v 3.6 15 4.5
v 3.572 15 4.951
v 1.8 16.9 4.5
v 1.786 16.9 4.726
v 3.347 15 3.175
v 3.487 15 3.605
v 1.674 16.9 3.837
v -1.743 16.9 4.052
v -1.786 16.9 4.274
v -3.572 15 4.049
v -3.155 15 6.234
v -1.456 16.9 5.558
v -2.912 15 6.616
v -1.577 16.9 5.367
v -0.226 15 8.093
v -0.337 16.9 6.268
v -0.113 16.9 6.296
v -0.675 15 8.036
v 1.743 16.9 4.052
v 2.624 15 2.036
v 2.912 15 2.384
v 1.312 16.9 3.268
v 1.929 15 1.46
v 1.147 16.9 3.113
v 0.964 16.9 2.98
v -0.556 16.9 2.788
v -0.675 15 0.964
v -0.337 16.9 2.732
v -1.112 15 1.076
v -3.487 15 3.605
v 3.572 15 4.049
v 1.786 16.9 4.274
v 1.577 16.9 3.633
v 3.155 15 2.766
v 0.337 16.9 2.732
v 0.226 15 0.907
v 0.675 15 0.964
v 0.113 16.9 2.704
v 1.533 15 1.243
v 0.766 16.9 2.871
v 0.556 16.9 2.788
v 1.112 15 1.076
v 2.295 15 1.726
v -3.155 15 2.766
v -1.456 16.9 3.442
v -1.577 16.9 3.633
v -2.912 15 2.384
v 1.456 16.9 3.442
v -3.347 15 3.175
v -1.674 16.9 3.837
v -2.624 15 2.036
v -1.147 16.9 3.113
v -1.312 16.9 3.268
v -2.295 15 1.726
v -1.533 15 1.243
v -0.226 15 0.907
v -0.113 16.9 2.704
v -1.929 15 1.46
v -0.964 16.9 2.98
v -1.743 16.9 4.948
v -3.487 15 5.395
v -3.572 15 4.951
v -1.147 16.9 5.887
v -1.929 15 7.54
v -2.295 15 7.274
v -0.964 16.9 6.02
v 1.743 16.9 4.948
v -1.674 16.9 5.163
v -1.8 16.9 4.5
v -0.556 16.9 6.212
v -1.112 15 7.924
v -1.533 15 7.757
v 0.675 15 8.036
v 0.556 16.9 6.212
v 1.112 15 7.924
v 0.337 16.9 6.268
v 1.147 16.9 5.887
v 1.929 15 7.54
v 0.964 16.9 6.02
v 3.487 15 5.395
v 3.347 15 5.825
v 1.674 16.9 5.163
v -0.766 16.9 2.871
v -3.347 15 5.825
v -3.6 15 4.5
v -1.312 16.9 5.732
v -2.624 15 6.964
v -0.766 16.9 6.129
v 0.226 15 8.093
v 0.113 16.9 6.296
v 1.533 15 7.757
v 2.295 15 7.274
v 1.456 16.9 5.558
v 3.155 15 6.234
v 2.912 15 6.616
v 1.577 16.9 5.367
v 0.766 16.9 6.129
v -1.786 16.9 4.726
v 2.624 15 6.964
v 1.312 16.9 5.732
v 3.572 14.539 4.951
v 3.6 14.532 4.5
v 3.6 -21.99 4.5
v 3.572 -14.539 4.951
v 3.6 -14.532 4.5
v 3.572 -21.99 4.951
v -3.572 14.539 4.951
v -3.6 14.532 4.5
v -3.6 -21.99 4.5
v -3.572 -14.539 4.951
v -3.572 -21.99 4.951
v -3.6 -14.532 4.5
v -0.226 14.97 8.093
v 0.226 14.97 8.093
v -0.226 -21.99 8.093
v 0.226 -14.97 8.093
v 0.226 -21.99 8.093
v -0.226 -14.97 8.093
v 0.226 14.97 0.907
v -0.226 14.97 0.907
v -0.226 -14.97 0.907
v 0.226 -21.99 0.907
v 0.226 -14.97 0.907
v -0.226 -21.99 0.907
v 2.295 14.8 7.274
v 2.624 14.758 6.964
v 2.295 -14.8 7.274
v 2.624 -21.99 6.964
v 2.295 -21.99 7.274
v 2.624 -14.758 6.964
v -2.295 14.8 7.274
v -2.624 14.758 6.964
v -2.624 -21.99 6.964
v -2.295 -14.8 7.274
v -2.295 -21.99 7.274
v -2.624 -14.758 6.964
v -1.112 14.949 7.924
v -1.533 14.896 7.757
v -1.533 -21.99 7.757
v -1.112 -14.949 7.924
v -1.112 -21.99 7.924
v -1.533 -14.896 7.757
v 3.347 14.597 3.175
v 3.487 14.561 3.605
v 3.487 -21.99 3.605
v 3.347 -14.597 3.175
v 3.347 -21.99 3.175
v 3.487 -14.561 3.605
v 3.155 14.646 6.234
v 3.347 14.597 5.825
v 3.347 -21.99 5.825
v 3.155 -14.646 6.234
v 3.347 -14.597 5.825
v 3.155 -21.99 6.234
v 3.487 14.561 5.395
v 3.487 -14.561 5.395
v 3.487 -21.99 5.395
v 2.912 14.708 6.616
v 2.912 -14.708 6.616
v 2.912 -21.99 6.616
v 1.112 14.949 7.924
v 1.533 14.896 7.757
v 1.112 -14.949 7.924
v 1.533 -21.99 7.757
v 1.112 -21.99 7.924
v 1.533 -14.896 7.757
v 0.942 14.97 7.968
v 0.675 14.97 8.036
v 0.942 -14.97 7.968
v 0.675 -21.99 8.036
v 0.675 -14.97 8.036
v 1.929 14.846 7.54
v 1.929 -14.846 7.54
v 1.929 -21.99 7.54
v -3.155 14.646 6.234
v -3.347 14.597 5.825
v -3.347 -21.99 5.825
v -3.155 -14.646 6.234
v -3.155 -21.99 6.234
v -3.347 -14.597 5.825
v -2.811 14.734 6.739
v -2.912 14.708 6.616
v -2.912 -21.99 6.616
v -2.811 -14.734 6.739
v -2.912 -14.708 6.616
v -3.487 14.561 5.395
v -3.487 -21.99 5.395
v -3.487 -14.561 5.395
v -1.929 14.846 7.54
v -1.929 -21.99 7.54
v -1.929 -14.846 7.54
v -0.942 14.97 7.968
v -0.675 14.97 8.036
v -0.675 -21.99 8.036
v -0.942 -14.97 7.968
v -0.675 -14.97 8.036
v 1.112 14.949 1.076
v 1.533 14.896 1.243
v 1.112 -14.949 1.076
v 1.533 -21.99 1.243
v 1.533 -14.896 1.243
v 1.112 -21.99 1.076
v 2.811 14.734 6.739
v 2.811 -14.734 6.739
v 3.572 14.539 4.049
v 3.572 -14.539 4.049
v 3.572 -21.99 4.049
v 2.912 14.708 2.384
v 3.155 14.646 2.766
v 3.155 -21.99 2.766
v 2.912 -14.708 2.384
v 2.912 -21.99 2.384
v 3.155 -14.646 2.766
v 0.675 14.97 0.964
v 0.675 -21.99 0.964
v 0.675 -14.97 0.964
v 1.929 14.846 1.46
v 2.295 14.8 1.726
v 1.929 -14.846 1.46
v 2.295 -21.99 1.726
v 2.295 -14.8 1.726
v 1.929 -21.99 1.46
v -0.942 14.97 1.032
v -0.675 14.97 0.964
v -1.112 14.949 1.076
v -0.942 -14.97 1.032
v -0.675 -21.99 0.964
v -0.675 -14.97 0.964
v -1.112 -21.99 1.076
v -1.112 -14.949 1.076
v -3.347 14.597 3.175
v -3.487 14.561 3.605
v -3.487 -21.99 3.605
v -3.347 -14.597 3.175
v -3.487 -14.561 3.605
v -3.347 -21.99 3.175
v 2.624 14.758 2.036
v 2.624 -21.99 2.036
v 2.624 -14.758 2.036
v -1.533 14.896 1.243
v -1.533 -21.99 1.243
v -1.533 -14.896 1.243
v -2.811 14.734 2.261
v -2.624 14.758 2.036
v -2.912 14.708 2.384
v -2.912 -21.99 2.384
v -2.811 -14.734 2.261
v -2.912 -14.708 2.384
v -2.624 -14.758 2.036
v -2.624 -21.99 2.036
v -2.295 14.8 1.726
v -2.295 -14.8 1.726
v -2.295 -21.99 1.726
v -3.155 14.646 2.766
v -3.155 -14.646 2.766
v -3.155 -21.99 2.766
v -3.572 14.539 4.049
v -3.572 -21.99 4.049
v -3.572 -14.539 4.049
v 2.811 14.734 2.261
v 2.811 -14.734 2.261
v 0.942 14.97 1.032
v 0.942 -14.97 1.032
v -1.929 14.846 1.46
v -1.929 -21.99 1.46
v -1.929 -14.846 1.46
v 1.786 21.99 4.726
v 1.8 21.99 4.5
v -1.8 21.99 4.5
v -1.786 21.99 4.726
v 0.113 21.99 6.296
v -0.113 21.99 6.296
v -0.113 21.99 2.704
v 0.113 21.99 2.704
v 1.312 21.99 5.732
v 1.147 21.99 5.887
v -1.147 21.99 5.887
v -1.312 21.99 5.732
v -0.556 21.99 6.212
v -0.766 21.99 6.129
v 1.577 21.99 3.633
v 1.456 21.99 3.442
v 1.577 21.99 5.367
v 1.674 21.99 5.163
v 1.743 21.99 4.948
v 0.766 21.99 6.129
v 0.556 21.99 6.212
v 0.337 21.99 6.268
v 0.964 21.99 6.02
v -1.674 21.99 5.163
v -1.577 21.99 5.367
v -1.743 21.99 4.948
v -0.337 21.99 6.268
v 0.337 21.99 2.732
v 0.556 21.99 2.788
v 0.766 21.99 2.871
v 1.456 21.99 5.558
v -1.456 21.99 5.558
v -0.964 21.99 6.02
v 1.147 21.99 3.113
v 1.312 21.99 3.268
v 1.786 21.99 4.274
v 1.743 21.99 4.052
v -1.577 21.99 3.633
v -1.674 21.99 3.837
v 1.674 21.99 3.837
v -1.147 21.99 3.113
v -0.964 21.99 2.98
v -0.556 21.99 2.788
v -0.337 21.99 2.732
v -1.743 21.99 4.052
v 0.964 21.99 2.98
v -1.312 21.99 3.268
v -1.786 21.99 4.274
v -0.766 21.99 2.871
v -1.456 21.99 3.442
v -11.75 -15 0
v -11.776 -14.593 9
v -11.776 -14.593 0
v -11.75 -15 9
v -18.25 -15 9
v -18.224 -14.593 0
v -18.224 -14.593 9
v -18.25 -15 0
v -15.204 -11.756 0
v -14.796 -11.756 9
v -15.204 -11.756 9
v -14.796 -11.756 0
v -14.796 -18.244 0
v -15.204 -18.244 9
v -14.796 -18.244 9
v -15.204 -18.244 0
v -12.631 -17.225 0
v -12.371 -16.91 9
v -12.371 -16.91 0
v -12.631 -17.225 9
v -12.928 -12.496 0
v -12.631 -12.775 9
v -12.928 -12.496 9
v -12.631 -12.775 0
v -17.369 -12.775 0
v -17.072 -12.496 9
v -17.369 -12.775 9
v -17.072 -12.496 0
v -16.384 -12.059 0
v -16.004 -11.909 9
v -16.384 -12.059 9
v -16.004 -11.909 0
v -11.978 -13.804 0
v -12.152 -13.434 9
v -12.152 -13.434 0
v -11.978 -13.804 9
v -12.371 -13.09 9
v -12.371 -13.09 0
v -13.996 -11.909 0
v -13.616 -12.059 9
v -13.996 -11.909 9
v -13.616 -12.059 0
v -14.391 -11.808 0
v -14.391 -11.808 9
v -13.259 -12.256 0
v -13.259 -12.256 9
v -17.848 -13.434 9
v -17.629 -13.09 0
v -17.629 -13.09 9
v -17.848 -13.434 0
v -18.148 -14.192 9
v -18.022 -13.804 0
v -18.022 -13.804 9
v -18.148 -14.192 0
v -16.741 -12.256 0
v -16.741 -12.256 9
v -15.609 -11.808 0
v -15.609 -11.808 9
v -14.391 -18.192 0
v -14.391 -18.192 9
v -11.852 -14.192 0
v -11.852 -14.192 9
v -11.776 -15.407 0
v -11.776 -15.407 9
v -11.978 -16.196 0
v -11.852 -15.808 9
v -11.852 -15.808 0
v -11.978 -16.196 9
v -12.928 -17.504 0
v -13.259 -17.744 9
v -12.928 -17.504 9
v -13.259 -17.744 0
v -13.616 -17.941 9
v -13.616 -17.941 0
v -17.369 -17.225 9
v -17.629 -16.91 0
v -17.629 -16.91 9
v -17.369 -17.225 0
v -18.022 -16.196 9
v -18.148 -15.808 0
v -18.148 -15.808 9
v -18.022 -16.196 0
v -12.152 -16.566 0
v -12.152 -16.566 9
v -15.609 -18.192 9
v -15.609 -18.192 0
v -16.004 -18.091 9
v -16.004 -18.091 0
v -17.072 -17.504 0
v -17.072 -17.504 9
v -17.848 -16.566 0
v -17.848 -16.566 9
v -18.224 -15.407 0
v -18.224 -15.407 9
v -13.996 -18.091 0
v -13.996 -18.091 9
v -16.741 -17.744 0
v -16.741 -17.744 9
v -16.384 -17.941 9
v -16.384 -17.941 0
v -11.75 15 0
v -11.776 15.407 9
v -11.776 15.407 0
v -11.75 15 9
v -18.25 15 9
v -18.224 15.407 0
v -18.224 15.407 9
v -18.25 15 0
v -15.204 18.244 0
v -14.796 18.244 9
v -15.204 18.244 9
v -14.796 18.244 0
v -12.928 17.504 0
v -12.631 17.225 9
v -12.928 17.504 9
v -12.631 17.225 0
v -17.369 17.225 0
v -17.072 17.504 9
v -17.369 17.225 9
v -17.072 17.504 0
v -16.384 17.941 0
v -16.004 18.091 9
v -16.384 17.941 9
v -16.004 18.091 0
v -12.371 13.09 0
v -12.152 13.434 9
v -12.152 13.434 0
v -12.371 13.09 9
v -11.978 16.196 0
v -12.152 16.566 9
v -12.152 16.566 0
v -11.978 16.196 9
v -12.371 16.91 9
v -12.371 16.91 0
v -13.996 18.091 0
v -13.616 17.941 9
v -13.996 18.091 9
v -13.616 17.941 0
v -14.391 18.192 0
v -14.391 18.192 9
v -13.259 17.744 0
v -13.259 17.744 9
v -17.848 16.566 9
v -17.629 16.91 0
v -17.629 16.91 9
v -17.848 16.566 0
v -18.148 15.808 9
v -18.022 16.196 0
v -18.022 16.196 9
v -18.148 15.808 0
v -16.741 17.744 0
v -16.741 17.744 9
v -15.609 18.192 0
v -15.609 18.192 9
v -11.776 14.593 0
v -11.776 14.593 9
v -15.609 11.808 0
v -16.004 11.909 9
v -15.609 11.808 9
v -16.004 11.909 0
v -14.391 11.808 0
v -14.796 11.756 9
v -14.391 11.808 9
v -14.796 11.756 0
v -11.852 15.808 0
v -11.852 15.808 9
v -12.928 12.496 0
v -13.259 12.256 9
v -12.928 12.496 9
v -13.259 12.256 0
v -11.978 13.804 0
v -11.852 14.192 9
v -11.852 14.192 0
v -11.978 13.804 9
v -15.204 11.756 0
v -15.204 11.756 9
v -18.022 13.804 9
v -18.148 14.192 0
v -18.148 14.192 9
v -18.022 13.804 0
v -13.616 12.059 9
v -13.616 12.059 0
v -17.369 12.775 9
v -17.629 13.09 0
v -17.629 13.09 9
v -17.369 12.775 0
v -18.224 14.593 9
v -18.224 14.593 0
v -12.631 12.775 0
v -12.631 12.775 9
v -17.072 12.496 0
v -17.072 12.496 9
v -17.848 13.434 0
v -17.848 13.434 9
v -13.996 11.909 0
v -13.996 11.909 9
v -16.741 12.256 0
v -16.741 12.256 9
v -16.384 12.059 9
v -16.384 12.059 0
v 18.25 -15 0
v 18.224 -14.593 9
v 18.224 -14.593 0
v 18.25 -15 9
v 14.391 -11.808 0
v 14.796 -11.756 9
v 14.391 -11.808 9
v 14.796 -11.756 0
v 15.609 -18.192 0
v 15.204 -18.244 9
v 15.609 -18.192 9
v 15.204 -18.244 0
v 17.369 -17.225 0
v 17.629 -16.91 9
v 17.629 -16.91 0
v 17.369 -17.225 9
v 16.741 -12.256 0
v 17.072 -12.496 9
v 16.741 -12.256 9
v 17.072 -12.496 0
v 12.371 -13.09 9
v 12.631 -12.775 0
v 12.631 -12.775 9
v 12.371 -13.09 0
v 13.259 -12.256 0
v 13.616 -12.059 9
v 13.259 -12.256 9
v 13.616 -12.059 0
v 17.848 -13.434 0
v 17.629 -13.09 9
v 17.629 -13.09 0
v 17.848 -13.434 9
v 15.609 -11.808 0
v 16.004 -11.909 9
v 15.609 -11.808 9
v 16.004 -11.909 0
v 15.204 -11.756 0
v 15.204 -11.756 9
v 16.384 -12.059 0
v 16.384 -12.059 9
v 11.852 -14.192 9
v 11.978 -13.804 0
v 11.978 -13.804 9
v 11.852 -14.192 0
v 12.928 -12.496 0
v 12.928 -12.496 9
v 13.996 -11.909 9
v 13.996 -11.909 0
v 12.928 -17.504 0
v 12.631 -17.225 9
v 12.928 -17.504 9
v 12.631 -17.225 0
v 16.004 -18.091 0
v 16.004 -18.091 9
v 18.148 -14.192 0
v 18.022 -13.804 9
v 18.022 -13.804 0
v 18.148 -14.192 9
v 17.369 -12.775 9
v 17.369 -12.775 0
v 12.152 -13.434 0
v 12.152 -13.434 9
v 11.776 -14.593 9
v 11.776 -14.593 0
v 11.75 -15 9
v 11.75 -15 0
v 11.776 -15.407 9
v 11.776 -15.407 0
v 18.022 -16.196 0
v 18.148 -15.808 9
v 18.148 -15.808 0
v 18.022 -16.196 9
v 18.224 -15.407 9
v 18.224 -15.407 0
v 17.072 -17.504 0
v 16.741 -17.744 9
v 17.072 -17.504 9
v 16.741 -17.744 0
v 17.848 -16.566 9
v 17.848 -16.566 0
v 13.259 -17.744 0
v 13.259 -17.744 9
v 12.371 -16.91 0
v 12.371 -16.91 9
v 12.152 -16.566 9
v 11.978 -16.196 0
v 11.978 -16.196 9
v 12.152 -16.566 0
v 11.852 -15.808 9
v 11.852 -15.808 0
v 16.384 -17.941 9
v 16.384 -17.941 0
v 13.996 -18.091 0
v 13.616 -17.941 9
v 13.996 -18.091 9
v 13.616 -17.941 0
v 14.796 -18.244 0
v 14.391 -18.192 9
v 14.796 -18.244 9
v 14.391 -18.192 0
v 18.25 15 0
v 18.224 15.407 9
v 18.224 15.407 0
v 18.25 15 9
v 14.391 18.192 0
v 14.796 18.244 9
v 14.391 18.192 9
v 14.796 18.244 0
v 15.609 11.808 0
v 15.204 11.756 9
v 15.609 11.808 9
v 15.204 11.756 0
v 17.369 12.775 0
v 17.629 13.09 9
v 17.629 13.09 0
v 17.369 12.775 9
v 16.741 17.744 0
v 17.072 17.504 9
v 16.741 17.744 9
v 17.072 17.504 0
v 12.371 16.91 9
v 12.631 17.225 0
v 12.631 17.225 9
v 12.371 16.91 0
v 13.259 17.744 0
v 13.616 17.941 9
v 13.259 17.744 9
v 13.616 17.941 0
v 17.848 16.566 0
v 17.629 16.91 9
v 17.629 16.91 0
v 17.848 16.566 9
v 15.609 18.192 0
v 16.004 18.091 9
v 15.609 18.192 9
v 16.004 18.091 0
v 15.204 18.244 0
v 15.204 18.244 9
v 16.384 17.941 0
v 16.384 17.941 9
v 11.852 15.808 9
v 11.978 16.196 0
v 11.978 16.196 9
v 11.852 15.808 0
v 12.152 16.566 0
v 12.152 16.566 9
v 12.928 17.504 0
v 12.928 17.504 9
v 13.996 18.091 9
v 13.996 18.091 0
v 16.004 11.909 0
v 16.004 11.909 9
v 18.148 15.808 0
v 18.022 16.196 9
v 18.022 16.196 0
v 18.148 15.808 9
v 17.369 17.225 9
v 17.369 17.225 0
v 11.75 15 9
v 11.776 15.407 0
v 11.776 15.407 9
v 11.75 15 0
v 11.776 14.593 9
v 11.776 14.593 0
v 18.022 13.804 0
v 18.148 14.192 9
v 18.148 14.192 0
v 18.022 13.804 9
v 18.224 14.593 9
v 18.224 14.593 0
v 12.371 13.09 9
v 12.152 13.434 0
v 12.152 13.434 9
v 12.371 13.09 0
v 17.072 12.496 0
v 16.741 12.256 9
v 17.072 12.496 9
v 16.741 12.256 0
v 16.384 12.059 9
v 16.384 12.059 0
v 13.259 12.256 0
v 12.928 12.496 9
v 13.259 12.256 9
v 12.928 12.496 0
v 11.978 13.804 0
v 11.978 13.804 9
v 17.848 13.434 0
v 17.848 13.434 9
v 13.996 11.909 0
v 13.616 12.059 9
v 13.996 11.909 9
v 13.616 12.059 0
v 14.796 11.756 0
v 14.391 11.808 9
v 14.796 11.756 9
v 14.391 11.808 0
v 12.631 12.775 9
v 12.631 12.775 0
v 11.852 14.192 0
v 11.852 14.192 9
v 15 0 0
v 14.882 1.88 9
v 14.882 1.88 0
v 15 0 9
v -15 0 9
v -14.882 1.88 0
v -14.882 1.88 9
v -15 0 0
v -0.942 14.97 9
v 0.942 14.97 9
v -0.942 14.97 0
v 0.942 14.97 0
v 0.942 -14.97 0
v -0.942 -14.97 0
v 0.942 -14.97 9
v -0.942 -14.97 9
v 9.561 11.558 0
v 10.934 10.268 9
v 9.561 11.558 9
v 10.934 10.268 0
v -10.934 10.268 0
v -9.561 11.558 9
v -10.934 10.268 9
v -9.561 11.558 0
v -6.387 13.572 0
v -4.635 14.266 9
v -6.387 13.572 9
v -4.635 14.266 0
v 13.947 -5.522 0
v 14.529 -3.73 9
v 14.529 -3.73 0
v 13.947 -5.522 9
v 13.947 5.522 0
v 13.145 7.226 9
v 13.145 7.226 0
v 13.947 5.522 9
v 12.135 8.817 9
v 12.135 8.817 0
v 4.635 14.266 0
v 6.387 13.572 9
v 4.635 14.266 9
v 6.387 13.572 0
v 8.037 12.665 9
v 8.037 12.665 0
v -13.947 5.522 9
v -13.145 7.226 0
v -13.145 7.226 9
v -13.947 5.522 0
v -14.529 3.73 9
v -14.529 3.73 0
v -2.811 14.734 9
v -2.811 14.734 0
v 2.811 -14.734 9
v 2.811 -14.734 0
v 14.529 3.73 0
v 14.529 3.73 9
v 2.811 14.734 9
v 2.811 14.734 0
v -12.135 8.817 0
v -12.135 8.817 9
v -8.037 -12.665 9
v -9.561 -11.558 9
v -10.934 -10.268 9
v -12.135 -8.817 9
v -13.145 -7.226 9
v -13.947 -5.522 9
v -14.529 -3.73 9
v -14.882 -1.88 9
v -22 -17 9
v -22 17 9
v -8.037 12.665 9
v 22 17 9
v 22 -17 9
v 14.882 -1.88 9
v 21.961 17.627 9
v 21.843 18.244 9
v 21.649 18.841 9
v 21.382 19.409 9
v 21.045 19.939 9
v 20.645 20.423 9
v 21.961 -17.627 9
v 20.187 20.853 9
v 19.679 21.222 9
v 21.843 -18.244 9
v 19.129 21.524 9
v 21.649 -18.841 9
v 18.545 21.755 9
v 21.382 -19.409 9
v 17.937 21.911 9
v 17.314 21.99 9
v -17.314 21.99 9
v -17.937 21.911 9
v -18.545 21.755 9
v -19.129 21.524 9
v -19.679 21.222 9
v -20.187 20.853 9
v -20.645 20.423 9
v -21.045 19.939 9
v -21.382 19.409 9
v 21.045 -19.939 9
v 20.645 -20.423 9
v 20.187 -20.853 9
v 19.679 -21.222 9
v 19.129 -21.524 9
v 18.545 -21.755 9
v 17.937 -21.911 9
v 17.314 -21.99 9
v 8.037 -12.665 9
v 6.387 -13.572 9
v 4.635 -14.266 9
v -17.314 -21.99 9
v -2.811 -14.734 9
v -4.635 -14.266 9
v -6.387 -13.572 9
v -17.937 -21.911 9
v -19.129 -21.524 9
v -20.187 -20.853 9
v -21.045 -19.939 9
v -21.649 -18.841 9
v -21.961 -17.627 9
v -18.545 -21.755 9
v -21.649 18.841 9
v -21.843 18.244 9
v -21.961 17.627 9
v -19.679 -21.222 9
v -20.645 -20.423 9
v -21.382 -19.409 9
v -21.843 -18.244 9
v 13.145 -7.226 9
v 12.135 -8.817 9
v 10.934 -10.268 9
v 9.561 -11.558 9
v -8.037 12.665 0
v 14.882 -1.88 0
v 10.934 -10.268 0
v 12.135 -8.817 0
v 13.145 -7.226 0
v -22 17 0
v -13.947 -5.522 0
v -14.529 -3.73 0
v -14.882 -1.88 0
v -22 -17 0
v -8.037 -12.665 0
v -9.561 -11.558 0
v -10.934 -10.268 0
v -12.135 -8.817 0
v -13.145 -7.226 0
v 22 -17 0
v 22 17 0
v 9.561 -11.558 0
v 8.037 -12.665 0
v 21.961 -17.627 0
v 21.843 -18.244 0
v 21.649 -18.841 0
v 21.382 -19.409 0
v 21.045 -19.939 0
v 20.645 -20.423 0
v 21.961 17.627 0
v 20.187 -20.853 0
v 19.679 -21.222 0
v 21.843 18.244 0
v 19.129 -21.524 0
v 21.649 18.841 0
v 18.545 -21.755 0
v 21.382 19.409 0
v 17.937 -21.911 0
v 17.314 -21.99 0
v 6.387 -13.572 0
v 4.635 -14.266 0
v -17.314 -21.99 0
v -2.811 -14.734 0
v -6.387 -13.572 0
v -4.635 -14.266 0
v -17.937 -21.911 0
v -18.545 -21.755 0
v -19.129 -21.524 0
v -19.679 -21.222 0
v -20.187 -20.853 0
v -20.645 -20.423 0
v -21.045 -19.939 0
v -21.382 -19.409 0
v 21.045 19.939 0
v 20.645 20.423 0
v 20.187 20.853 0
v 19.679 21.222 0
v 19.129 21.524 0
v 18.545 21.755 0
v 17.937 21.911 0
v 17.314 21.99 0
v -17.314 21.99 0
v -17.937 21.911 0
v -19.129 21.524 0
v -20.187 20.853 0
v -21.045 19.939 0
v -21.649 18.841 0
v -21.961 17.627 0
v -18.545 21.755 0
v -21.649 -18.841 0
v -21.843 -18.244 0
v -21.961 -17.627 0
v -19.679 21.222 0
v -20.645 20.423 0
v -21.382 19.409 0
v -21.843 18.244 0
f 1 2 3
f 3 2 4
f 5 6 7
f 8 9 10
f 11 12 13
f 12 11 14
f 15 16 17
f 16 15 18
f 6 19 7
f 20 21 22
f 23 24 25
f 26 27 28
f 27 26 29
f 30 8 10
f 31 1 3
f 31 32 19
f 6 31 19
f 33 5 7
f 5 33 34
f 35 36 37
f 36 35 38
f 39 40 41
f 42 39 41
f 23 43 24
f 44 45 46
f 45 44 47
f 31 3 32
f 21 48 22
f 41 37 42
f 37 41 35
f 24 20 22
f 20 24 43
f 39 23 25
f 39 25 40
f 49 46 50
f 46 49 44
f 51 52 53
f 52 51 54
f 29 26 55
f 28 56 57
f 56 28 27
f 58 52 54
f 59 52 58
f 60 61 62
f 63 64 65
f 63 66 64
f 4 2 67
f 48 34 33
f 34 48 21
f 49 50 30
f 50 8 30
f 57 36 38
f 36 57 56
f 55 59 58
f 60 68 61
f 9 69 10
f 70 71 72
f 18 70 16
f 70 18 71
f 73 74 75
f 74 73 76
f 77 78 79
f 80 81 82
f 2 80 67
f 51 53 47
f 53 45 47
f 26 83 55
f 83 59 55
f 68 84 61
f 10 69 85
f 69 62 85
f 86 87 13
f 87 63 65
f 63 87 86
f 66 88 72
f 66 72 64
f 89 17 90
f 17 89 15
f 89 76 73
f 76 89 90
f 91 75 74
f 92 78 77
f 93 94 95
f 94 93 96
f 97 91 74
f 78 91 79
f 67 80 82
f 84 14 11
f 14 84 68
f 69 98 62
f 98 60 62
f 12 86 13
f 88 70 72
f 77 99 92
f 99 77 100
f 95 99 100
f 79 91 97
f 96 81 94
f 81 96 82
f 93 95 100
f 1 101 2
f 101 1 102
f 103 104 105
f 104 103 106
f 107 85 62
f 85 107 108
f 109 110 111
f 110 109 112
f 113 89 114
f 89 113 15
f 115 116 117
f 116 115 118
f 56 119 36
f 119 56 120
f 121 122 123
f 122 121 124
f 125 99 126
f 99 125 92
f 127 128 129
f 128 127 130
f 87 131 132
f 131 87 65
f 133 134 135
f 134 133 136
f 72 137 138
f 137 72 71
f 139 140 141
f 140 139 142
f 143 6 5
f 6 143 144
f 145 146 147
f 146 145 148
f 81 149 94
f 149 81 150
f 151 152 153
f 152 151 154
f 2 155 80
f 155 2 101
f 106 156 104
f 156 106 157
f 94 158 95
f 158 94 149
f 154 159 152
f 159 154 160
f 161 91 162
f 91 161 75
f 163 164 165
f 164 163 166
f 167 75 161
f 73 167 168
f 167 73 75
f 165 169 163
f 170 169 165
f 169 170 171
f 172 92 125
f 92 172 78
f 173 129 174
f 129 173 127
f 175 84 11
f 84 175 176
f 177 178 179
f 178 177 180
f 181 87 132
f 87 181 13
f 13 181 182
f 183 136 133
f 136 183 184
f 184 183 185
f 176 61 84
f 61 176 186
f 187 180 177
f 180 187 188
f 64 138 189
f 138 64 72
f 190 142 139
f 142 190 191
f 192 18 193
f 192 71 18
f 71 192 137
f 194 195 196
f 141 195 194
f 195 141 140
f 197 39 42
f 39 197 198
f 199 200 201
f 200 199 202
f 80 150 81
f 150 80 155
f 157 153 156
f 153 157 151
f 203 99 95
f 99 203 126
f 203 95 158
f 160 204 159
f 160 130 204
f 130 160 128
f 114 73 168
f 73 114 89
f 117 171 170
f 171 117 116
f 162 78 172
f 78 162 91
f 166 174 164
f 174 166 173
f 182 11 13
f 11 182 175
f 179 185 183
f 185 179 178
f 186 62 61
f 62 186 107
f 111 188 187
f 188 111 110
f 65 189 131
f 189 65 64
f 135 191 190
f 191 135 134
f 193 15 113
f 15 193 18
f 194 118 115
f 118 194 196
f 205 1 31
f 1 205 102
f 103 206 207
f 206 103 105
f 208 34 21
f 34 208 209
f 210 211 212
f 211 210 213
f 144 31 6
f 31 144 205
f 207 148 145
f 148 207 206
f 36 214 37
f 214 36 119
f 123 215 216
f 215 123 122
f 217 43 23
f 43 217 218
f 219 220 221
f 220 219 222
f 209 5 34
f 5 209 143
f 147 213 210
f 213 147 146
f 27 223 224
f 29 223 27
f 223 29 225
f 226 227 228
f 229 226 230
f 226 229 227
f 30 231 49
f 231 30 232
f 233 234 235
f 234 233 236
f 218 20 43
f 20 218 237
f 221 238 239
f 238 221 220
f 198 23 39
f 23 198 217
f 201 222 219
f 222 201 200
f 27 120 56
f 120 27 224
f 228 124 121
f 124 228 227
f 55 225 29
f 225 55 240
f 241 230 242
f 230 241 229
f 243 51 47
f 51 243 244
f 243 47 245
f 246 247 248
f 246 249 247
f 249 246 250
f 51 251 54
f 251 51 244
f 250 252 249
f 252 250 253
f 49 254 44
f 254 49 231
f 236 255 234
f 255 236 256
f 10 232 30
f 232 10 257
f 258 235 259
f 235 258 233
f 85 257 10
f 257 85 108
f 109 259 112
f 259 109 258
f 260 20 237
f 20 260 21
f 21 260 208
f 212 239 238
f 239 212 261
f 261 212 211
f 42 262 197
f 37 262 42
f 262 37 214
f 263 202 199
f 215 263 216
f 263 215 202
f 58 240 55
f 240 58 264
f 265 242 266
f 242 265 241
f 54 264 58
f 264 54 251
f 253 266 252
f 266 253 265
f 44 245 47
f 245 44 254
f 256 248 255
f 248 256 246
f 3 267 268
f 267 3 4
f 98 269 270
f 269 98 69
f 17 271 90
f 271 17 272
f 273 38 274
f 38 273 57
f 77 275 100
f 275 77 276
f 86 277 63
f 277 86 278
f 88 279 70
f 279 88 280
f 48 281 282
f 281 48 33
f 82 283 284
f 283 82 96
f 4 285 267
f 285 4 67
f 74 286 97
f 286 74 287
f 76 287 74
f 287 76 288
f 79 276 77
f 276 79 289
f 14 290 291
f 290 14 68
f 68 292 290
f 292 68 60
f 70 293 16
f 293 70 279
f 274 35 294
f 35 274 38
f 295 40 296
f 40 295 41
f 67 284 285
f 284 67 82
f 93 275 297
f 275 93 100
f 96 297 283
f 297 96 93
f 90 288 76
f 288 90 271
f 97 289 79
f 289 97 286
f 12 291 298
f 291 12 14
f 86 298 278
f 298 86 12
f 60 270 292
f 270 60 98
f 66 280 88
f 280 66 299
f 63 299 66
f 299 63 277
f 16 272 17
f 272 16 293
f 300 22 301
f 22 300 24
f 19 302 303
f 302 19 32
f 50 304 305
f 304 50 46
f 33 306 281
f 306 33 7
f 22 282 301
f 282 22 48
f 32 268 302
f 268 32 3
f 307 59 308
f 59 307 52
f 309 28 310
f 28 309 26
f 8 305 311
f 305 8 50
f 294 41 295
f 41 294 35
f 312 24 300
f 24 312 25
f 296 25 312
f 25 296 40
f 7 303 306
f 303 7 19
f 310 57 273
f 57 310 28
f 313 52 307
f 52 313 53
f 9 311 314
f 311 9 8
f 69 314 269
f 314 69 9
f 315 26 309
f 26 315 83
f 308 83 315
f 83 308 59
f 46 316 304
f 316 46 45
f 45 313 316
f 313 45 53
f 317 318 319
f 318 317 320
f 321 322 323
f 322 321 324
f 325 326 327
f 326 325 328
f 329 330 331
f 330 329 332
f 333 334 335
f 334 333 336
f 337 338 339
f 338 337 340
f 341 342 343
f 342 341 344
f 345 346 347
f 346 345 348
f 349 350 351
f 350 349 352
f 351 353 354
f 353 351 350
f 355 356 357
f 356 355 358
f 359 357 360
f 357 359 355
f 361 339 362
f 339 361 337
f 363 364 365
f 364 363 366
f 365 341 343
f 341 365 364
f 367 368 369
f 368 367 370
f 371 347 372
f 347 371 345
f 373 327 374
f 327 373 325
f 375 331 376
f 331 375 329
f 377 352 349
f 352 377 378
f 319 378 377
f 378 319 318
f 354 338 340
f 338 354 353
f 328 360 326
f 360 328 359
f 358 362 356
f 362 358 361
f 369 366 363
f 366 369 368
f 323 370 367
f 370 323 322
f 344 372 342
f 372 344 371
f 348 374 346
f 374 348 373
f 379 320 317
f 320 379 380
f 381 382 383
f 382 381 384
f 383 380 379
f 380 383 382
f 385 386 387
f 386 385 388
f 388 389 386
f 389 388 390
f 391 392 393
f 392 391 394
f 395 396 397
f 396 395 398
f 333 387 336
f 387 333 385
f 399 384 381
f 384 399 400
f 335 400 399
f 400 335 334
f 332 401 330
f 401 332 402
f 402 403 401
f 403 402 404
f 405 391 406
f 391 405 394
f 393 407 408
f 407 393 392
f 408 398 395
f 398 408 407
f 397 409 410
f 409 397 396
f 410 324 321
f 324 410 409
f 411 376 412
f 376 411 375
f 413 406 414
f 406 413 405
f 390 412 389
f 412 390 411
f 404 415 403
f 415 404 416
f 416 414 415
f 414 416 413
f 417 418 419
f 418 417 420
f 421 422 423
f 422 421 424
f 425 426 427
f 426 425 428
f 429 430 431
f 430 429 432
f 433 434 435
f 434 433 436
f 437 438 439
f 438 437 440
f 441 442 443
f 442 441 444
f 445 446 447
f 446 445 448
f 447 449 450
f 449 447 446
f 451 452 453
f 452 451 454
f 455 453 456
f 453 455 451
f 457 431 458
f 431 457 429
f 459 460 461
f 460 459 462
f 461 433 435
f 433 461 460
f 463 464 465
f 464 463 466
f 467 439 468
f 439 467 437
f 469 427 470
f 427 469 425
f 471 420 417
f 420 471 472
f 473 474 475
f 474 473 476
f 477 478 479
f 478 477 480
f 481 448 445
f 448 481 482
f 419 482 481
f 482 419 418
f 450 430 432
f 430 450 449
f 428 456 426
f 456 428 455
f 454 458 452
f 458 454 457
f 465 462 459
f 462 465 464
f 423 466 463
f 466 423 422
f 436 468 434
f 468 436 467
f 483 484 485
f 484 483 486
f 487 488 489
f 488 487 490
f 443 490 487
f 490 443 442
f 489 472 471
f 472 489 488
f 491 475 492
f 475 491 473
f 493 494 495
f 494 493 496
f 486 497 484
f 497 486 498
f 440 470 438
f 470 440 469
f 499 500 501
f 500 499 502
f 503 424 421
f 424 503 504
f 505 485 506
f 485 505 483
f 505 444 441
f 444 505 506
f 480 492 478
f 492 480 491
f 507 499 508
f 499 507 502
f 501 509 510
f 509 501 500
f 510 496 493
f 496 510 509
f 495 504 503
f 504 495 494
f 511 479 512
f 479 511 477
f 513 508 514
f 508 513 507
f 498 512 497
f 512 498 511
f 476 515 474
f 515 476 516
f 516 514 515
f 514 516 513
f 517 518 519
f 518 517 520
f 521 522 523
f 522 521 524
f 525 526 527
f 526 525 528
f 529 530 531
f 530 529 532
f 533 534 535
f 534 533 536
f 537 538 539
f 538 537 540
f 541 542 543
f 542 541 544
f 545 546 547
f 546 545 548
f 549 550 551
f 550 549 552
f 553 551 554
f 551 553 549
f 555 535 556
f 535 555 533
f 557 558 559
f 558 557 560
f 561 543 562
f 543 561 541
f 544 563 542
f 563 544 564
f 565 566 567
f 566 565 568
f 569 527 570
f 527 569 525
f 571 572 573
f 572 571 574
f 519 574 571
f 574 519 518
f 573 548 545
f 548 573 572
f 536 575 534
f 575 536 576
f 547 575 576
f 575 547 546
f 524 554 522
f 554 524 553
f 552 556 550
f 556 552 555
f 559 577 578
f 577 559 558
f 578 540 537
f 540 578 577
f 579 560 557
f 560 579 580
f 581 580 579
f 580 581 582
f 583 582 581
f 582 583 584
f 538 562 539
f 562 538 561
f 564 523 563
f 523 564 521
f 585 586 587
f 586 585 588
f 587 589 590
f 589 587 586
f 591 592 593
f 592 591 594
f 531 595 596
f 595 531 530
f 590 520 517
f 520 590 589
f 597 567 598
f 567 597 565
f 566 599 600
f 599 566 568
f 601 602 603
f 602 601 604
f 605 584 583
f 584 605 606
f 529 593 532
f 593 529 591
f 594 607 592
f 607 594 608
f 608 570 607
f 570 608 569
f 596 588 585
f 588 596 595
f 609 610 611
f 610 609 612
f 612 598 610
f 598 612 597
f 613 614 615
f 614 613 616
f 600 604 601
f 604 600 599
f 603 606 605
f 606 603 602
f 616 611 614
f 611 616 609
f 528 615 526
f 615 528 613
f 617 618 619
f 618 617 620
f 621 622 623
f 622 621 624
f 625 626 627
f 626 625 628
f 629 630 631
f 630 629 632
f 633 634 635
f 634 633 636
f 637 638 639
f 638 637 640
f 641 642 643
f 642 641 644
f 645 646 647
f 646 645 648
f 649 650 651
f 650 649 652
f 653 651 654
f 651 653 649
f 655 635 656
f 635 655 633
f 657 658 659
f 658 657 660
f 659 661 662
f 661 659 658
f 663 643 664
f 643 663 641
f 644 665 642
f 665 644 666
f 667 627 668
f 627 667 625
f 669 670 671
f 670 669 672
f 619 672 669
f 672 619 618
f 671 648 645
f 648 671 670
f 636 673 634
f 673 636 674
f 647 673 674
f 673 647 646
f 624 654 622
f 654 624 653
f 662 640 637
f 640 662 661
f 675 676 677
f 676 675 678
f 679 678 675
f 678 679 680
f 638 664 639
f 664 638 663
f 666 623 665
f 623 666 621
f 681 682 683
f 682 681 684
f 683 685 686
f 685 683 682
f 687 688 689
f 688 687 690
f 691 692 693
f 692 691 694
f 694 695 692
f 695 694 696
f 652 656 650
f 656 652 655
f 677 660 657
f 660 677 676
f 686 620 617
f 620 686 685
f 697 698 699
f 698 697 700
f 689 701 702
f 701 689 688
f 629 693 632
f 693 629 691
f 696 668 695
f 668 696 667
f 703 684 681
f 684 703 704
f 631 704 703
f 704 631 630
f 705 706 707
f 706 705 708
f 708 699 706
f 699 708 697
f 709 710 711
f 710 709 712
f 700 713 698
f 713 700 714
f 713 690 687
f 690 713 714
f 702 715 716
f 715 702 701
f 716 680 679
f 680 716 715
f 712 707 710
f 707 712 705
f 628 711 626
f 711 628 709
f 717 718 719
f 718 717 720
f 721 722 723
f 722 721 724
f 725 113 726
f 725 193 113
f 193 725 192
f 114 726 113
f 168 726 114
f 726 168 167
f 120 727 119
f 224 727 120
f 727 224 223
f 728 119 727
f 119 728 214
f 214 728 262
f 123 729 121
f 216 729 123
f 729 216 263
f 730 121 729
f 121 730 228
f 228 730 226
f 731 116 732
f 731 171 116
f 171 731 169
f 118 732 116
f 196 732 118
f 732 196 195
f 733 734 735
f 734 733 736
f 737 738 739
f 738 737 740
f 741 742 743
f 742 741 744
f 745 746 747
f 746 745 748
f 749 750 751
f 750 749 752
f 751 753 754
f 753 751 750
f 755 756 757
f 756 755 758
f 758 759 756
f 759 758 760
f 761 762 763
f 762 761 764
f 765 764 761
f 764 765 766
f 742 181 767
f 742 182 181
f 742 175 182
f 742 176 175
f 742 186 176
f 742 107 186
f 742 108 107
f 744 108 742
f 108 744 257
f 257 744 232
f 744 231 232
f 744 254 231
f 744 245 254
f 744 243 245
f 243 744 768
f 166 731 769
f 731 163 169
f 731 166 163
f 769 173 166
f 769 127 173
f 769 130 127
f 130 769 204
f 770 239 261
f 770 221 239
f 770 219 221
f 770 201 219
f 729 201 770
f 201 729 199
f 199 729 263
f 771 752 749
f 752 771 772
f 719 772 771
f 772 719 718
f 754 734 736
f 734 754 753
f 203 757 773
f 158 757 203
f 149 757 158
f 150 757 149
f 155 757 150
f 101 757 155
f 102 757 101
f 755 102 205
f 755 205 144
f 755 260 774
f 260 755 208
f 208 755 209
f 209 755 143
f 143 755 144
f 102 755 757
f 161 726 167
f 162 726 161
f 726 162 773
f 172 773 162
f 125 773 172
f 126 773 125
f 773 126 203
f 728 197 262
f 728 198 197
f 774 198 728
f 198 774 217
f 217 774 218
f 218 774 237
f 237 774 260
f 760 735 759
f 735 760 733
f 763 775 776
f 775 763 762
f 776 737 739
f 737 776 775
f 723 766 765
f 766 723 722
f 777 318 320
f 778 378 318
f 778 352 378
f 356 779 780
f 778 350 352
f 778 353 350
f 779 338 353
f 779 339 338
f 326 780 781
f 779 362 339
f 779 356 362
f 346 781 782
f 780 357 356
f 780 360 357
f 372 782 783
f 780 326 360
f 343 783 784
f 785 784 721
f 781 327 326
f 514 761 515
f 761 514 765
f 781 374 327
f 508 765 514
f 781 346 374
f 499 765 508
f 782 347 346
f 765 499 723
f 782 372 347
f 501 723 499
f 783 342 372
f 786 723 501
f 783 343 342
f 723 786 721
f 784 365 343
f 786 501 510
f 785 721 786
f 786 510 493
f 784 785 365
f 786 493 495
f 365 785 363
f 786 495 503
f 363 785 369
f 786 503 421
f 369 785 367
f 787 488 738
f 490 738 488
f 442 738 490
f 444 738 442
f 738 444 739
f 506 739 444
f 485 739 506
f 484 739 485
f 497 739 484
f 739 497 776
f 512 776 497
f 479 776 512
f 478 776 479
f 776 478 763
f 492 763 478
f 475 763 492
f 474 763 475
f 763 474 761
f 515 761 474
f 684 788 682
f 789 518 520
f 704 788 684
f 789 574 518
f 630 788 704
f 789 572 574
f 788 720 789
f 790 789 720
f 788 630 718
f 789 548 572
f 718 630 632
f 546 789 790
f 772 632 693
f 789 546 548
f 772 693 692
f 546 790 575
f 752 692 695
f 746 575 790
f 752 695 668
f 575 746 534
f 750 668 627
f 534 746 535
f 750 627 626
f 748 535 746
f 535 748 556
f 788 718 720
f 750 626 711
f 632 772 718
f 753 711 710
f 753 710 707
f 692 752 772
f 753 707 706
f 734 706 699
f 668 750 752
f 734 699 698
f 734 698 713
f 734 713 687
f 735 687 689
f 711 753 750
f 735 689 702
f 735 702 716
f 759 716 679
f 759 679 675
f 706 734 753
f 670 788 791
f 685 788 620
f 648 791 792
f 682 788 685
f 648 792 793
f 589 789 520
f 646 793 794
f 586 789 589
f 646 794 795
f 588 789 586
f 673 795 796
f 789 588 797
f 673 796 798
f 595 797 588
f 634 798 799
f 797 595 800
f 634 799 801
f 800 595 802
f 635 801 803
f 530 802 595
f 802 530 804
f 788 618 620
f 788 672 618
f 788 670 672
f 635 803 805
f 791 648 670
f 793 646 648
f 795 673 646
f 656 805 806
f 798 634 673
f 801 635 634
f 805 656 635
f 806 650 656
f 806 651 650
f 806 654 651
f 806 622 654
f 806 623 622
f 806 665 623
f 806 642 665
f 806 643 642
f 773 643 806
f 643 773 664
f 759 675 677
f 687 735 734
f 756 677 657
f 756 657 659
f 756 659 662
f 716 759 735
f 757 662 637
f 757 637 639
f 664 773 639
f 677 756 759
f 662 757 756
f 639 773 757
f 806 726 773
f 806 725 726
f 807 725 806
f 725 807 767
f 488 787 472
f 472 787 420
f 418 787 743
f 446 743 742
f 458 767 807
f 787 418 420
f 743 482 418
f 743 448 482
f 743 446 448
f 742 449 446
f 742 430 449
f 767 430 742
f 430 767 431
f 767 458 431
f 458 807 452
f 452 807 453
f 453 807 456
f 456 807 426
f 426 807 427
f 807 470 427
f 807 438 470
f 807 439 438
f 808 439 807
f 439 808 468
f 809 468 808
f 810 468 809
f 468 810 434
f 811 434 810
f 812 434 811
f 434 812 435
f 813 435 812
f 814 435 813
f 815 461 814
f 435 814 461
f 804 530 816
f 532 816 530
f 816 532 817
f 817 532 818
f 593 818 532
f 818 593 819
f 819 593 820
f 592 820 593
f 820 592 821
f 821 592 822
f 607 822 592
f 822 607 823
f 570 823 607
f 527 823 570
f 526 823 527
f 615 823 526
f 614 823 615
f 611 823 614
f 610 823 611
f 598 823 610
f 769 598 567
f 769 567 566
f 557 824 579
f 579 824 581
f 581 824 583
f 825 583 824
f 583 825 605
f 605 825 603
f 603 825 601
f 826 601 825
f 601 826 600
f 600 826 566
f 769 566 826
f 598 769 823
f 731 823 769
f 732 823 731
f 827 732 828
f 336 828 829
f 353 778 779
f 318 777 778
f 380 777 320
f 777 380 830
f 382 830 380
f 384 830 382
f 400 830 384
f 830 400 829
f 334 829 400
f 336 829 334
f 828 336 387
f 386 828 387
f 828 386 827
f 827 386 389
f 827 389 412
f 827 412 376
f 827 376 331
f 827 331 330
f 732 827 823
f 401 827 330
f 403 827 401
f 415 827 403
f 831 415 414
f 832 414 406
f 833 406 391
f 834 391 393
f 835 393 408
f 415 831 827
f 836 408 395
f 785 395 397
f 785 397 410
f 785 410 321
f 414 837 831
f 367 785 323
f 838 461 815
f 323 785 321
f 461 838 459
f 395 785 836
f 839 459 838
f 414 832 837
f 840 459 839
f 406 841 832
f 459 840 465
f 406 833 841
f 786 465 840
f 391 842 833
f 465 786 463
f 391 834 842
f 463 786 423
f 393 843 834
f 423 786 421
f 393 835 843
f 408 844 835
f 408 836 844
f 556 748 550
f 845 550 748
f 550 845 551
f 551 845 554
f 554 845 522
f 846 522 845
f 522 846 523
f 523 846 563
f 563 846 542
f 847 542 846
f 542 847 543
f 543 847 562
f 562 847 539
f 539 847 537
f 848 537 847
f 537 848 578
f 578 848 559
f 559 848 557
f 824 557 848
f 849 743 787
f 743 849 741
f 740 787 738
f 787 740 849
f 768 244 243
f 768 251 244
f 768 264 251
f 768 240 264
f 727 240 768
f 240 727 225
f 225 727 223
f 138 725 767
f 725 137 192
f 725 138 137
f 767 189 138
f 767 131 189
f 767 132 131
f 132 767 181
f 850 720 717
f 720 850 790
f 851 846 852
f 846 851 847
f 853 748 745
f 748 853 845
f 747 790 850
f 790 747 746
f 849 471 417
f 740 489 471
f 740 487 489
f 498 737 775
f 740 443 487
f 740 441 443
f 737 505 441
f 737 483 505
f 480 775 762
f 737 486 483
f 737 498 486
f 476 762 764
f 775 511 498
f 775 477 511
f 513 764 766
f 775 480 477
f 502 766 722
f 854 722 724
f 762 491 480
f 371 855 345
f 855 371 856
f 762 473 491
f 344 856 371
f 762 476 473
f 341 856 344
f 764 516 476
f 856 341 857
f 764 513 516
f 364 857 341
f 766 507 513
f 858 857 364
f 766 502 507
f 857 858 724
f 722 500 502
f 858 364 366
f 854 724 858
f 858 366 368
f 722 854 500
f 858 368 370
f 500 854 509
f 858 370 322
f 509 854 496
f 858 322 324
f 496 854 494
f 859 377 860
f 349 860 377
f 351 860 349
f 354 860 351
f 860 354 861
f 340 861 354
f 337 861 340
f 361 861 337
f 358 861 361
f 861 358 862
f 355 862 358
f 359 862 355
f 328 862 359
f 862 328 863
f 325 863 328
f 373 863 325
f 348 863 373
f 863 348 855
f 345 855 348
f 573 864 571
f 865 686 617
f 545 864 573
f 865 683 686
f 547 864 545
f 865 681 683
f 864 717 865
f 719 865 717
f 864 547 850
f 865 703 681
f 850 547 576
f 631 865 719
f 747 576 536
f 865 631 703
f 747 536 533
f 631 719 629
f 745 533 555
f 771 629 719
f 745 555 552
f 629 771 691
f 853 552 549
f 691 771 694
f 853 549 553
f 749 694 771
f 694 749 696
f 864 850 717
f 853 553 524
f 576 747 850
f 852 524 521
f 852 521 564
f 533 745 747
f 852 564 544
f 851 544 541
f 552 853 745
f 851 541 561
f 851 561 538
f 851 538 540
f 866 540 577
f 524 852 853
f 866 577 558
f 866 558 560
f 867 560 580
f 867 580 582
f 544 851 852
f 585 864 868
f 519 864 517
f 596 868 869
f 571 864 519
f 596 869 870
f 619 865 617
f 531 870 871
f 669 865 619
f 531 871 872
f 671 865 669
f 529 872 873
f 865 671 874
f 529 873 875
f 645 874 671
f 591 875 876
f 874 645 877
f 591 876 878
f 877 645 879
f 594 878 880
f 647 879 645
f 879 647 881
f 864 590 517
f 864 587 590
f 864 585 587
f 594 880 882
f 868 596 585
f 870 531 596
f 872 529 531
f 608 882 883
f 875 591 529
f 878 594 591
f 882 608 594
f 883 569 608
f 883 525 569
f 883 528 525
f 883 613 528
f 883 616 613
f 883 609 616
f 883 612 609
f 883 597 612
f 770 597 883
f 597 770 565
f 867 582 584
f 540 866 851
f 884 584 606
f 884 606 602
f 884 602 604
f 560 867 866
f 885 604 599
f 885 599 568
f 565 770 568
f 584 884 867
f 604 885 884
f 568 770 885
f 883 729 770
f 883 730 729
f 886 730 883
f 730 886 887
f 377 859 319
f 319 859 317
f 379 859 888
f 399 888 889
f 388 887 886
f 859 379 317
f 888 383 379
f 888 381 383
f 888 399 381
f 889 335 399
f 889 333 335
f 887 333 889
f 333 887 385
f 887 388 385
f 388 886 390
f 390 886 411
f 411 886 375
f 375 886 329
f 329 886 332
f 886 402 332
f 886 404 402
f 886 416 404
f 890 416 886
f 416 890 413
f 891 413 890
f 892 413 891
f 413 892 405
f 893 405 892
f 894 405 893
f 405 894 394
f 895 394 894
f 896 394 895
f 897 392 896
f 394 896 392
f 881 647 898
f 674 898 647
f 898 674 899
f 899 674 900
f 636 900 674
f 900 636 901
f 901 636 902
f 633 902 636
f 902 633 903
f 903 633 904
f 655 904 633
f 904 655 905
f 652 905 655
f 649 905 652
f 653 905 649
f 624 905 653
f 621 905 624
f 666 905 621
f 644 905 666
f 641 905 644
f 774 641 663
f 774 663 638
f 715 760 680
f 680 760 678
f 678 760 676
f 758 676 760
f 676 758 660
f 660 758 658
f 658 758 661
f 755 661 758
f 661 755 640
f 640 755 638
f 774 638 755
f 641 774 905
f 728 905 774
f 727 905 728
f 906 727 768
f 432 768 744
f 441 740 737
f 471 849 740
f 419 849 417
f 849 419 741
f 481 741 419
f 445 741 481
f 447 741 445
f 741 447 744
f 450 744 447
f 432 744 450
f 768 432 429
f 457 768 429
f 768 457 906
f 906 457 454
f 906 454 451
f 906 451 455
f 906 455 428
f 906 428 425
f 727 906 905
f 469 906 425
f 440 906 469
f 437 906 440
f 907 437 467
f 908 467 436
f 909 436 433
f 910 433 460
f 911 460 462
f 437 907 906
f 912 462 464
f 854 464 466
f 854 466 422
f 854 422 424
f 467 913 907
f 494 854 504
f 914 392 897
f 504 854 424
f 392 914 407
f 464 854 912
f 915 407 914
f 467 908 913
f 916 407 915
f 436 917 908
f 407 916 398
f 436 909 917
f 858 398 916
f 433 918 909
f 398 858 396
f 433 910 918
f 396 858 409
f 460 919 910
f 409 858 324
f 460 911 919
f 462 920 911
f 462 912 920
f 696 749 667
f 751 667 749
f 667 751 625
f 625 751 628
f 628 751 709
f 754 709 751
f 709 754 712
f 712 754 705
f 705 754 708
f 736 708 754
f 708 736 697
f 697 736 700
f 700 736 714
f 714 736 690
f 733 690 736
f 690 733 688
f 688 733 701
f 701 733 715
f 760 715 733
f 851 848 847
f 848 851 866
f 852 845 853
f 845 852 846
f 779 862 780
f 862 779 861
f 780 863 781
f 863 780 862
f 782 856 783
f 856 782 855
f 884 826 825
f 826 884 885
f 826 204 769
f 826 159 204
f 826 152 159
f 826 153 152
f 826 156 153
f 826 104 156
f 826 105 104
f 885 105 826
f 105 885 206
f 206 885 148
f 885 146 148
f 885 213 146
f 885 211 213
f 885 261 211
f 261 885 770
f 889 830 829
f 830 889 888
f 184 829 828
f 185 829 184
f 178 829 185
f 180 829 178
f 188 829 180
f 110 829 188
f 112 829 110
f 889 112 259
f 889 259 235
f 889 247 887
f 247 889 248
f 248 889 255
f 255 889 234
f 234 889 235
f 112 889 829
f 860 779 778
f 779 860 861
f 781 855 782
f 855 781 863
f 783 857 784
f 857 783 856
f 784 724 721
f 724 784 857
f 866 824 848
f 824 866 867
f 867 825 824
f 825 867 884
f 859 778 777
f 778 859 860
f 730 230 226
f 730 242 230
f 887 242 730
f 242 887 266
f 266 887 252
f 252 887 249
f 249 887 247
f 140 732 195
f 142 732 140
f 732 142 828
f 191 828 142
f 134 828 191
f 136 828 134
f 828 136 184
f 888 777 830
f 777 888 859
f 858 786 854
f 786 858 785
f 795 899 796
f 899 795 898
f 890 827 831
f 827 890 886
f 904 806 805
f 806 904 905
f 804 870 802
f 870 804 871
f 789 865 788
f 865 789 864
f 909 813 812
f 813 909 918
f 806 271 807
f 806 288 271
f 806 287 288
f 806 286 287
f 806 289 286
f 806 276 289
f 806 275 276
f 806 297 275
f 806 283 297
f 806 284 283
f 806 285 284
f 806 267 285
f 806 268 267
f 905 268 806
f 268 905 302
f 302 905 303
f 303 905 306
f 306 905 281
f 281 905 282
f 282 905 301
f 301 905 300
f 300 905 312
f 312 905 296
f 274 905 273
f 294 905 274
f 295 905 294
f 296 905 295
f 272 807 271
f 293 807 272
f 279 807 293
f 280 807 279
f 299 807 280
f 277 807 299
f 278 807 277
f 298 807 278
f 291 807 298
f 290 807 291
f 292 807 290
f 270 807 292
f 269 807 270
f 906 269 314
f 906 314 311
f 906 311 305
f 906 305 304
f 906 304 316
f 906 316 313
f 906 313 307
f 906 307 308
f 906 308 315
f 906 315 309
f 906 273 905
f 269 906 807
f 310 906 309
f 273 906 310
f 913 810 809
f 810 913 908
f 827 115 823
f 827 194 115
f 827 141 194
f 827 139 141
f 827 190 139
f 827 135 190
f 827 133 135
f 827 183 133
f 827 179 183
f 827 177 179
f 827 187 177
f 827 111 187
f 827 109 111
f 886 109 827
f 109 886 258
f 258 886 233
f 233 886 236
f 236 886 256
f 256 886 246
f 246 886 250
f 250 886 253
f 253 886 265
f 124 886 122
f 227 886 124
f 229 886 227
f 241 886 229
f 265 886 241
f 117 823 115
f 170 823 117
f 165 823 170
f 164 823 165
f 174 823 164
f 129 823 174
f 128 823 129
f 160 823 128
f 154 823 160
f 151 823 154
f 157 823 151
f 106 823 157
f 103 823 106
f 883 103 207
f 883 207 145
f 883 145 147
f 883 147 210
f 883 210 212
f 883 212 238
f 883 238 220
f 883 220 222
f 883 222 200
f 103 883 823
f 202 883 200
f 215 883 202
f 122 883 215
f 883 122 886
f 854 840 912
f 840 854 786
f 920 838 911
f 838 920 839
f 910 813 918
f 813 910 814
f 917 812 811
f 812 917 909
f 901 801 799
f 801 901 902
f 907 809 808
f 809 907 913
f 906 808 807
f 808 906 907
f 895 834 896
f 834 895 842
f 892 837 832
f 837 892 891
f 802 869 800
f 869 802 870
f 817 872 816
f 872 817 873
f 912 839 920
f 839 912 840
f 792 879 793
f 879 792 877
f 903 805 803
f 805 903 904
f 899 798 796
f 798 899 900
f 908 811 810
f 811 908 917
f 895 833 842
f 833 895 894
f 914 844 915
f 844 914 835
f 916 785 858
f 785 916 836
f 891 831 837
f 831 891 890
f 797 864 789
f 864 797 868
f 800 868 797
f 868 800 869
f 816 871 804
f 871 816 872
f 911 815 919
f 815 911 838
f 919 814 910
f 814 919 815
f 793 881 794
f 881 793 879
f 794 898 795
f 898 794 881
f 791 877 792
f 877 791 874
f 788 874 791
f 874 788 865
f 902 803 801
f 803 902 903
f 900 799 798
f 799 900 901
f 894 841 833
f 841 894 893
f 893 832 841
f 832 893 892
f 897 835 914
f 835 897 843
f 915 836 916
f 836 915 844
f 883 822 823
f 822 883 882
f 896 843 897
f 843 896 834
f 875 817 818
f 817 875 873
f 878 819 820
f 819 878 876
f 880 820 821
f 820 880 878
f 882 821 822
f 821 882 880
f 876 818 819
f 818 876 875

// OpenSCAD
$fn = 50;


difference() {
	union() {
		hull() {
			translate(v = [-17.0000000000, 17.0000000000, 0]) {
				cylinder(h = 9, r = 5);
			}
			translate(v = [17.0000000000, 17.0000000000, 0]) {
				cylinder(h = 9, r = 5);
			}
			translate(v = [-17.0000000000, -17.0000000000, 0]) {
				cylinder(h = 9, r = 5);
			}
			translate(v = [17.0000000000, -17.0000000000, 0]) {
				cylinder(h = 9, r = 5);
			}
		}
	}
	union() {
		translate(v = [0, 15.0000000000, 4.5000000000]) {
			rotate(a = [90, 0, 0]) {
				difference() {
					union() {
						#translate(v = [0, 0, -7.0000000000]) {
							cylinder(h = 7, r = 1.5000000000);
						}
						#translate(v = [0, 0, -1.9000000000]) {
							cylinder(h = 1.9000000000, r1 = 1.8000000000, r2 = 3.6000000000);
						}
						#cylinder(h = 250, r = 3.6000000000);
						#translate(v = [0, 0, -7.0000000000]) {
							cylinder(h = 7, r = 1.8000000000);
						}
						#translate(v = [0, 0, -7.0000000000]) {
							cylinder(h = 7, r = 1.5000000000);
						}
					}
					union();
				}
			}
		}
		translate(v = [-15.0000000000, -15.0000000000, -100.0000000000]) {
			cylinder(h = 200, r = 3.2500000000);
		}
		translate(v = [-15.0000000000, 15.0000000000, -100.0000000000]) {
			cylinder(h = 200, r = 3.2500000000);
		}
		translate(v = [15.0000000000, -15.0000000000, -100.0000000000]) {
			cylinder(h = 200, r = 3.2500000000);
		}
		translate(v = [15.0000000000, 15.0000000000, -100.0000000000]) {
			cylinder(h = 200, r = 3.2500000000);
		}
		cylinder(h = 9, r = 15.0000000000);
	}
}
